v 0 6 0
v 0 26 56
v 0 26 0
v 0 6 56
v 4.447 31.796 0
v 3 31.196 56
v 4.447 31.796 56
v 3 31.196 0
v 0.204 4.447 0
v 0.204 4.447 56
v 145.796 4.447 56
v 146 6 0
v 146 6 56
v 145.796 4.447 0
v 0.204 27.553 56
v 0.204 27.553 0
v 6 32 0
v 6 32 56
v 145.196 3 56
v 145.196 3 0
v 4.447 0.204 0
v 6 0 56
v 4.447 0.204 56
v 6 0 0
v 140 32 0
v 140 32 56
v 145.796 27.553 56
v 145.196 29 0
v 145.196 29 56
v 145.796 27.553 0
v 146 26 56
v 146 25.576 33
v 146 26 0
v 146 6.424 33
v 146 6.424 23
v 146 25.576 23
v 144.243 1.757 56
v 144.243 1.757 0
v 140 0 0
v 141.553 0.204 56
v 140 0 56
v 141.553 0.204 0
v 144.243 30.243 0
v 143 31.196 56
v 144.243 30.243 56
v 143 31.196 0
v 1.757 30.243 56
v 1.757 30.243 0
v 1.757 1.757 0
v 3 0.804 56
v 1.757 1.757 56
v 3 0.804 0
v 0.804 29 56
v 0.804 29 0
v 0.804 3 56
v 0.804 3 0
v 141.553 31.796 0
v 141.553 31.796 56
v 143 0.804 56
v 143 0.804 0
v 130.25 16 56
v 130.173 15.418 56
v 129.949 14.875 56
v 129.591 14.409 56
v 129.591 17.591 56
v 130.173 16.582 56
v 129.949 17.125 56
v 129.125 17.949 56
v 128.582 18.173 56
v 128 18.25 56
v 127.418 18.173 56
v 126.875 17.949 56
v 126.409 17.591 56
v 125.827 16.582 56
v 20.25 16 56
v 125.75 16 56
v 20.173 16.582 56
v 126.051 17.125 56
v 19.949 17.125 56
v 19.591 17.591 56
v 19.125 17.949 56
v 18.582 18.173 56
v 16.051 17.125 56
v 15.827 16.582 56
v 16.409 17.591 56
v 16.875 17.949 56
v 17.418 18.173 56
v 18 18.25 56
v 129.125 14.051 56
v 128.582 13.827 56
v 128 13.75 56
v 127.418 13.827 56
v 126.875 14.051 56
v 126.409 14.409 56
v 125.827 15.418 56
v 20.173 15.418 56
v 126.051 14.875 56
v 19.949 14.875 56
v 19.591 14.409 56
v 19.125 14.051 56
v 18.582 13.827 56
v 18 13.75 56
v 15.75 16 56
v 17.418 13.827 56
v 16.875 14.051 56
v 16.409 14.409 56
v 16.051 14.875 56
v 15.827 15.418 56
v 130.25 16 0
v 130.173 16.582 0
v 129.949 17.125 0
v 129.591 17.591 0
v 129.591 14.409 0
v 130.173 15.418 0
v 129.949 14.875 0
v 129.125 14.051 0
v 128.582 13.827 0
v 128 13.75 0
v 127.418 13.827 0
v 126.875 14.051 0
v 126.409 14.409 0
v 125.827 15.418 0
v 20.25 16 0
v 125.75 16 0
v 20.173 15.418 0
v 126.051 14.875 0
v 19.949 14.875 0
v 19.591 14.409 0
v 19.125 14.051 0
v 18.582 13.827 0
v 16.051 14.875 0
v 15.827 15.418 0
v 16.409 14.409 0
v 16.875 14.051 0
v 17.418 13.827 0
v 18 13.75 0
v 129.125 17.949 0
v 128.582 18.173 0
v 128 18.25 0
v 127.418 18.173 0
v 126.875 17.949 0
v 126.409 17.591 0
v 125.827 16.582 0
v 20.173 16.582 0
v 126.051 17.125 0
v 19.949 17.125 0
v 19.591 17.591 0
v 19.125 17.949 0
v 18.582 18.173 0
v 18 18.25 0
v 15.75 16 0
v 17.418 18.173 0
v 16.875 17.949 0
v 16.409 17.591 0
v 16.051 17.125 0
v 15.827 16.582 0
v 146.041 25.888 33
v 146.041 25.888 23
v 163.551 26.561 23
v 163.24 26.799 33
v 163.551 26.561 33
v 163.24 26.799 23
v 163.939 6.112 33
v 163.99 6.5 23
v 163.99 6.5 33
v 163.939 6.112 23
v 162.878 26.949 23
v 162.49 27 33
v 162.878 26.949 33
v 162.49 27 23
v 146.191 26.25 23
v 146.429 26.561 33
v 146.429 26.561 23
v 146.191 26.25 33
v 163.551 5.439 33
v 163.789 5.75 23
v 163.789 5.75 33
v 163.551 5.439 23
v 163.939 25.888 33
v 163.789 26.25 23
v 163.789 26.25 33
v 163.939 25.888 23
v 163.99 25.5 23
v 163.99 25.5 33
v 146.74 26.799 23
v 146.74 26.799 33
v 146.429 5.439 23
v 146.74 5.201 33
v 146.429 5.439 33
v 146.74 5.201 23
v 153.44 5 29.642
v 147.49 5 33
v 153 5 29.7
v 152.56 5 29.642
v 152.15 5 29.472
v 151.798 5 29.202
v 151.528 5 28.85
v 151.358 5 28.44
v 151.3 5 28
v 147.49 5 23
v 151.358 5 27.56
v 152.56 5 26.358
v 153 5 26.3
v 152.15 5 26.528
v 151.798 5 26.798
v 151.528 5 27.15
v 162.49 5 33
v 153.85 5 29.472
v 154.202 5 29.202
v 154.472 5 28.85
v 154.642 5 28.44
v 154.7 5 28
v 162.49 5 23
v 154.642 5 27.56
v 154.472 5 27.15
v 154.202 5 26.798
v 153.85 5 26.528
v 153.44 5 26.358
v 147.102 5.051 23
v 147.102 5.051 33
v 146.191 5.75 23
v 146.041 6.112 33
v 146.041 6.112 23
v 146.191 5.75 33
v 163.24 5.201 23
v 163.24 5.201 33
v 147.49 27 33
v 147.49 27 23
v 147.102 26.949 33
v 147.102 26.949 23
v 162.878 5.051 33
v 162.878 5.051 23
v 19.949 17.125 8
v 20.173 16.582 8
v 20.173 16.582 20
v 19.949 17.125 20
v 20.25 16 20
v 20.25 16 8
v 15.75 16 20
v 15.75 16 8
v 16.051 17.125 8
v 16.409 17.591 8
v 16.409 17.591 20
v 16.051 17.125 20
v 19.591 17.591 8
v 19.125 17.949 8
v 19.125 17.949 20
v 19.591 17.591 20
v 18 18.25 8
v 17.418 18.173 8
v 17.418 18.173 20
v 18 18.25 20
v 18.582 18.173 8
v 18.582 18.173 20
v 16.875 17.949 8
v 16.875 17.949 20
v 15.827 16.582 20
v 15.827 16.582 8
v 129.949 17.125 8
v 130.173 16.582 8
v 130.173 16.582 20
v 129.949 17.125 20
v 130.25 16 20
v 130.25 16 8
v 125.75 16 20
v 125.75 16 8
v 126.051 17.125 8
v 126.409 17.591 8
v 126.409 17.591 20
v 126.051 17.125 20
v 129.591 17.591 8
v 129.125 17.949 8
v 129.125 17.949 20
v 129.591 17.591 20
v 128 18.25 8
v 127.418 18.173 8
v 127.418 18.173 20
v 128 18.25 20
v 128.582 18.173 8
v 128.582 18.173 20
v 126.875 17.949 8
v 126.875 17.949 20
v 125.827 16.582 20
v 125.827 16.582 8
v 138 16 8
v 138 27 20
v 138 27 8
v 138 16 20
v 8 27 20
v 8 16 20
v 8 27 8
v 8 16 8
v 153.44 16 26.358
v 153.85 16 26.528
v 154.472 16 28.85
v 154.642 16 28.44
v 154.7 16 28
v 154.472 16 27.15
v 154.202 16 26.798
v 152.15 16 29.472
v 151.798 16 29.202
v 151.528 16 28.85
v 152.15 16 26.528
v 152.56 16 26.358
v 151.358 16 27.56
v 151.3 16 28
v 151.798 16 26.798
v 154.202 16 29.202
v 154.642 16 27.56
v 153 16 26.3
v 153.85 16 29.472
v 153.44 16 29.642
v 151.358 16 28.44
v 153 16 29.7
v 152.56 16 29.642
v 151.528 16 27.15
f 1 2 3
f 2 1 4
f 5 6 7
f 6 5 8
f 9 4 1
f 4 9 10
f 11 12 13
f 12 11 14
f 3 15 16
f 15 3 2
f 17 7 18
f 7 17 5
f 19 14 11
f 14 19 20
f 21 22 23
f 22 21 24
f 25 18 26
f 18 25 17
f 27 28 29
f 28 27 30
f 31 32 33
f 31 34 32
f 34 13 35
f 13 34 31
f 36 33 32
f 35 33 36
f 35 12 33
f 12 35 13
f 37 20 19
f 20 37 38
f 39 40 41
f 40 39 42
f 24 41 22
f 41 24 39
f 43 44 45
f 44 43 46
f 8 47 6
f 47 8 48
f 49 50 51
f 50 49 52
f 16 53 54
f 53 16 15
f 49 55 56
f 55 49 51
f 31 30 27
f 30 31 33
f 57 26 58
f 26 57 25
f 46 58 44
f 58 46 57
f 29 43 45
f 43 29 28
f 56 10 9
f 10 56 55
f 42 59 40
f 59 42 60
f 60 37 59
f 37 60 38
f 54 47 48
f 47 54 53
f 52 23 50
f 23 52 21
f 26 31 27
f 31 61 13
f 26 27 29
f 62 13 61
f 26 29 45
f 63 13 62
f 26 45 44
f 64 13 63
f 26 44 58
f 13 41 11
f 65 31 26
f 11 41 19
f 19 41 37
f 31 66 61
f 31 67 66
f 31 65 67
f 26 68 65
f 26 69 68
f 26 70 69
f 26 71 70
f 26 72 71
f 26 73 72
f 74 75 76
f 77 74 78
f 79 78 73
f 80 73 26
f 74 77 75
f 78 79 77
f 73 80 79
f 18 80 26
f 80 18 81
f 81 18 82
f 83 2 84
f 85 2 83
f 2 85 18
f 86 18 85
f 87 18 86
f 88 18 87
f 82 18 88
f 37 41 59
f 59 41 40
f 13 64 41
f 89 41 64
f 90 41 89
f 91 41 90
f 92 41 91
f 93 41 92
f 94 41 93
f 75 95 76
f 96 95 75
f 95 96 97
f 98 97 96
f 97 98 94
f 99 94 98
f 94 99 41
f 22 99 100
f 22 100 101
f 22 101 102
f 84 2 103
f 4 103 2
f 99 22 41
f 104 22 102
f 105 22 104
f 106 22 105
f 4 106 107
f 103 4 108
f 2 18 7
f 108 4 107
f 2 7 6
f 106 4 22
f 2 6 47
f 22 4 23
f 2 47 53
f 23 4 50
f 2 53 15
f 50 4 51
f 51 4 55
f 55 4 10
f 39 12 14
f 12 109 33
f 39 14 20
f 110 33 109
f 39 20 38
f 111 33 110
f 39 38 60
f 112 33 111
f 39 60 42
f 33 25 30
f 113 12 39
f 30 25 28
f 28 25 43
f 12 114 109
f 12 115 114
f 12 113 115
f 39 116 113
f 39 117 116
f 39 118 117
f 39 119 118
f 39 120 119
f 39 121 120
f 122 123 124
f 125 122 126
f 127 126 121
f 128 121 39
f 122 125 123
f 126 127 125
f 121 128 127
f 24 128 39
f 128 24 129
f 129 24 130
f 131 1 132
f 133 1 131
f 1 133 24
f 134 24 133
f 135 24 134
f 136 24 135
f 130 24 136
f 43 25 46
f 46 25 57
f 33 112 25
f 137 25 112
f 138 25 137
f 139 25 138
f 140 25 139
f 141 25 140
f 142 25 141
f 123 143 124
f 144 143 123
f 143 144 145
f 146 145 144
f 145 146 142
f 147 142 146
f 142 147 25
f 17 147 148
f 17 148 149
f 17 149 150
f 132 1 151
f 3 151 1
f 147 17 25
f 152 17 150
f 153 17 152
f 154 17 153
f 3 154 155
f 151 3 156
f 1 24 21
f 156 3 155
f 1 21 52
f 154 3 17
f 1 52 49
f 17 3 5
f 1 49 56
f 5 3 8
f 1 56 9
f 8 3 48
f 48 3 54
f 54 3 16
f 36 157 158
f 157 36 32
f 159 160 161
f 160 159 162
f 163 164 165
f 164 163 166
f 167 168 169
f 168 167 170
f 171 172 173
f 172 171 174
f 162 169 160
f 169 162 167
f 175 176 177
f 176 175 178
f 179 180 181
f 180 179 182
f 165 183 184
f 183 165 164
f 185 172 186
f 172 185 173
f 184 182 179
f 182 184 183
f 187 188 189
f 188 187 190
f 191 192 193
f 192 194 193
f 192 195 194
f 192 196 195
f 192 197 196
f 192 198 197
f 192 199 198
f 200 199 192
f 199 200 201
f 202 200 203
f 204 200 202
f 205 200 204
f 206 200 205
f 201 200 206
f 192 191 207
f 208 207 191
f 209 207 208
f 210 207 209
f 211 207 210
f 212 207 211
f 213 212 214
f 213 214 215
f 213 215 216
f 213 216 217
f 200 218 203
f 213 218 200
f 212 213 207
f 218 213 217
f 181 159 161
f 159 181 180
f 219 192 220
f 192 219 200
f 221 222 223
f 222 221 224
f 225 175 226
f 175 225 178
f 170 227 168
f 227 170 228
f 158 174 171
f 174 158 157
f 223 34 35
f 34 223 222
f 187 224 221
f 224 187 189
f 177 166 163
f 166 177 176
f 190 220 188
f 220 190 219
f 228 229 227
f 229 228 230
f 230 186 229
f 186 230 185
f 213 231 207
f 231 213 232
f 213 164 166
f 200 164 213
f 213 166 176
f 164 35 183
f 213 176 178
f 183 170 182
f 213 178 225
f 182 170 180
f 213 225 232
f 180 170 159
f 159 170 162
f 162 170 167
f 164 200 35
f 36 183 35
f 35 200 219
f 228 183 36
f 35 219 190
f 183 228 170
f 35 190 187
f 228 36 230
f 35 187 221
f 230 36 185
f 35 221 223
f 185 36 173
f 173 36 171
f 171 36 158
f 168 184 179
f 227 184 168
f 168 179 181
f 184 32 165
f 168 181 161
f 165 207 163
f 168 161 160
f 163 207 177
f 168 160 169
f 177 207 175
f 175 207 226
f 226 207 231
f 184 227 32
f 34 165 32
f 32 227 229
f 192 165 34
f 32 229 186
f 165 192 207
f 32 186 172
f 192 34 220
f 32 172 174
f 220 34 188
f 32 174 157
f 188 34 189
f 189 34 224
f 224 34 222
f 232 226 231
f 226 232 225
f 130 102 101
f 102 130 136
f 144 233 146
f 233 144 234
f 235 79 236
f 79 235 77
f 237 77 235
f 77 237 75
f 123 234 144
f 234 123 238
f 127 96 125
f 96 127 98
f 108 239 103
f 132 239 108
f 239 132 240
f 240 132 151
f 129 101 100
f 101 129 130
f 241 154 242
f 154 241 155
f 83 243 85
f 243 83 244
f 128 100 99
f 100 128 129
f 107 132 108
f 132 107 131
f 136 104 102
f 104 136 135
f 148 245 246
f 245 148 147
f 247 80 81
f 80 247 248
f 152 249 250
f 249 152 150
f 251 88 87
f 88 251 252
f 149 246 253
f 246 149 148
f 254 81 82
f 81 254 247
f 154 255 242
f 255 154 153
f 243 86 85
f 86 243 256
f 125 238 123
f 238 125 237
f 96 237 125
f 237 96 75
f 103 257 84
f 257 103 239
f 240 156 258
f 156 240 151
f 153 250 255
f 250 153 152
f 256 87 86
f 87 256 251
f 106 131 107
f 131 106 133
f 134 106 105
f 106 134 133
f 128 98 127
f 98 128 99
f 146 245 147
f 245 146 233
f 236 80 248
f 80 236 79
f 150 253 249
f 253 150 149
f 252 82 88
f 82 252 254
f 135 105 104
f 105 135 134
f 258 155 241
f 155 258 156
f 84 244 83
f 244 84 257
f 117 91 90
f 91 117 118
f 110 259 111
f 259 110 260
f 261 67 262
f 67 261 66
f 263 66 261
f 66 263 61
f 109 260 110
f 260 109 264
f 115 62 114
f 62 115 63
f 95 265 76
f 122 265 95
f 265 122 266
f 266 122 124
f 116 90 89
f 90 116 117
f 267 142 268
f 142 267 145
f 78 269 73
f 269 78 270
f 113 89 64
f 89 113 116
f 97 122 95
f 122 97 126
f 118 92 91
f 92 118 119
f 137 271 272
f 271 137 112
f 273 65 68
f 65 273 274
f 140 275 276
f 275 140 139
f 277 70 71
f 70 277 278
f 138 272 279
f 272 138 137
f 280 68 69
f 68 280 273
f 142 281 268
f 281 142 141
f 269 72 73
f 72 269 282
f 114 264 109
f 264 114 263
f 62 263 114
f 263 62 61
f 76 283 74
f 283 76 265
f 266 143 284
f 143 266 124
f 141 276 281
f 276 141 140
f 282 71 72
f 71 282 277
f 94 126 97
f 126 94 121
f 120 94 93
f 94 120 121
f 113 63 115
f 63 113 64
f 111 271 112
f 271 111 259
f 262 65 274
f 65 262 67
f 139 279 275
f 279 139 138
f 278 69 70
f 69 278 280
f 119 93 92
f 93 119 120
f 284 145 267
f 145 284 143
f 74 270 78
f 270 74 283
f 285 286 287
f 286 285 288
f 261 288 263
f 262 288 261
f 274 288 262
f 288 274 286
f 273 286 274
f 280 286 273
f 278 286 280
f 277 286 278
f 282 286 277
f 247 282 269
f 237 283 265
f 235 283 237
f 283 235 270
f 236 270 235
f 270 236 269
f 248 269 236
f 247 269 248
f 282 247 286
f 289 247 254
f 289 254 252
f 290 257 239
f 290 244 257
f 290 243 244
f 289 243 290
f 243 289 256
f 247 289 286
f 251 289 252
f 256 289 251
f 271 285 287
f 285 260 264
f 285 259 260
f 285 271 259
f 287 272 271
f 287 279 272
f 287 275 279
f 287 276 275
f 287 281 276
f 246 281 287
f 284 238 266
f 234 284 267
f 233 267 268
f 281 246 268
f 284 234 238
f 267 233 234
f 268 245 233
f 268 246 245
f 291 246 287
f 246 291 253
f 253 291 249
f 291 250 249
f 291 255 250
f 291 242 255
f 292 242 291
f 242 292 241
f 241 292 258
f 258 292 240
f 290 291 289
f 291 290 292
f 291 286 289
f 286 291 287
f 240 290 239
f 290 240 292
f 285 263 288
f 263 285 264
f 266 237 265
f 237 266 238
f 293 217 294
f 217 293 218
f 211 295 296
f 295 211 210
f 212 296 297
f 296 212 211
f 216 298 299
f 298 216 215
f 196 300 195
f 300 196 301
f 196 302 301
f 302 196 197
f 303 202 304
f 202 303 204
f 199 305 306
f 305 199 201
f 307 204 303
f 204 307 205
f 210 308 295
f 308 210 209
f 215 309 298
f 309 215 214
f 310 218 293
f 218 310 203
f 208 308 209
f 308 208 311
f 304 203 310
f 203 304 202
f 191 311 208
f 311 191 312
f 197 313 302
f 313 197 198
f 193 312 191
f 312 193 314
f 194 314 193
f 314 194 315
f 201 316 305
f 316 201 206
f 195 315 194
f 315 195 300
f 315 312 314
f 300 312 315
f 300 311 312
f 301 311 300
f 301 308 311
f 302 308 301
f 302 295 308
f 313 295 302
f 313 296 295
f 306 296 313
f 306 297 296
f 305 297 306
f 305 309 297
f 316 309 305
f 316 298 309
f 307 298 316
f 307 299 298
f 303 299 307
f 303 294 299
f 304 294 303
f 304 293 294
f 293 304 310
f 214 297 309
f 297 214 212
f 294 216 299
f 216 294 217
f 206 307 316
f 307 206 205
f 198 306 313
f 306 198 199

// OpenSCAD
// file: 00_parameters.scad
// TenderCells DoorCell V1 shared parameters
// Units: millimeters

overall_w = 438;
overall_h = 368;
frame_depth = 56;

clear_w = 242;
clear_h = 312;

rail_thick = 32;
jamb_w = 48;
motor_jamb_w = 78;

// Printability targets
target_bed_xy = 220;
comfortable_part_max = 180;

// Modular frame split dimensions
top_seg_len = overall_w / 3;
bottom_seg_len = overall_w / 3;
left_jamb_seg_h = overall_h / 2;
right_lower_h = 118;
right_motor_h = 156;
right_upper_h = overall_h - right_lower_h - right_motor_h;

// Low-cost electronics envelope used by DoorCell V1.4.
// These dimensions are based on common generic modules, not a custom PCB.
esp32_board = [58, 31, 8];
drv8871_board = [31, 26, 7];
current_sensor_board = [26, 22, 7];
lm2596_board = [44, 22, 14];
inline_fuse_body = [45, 15, 14];
cn3065_board = [44, 24, 8];
electronics_clearance = 1.5;
controller_wall = 3;
controller_box_w = 170;
controller_box_h = 115;
controller_box_d = 46;
controller_lid_insert_offset = 11;
controller_m12_gland_d = 12.8;
controller_m10_gland_d = 10.6;
controller_m8_gland_d = 8.4;
controller_button_d = 16.2;

// Brass heat-set/push-in insert features.
insert_post_d = 8.0;
insert_post_h = 8.0;
insert_pilot_d = 4.6;
insert_pilot_depth = 6.5;
hold_down_screw_clearance = 3.4;

// Motor envelope for common 25GA/JGA25-370 gearmotors with optional encoder.
motor_body_d = 25.0;
motor_body_clearance_d = 27.2;
motor_body_len = 65;
motor_encoder_clearance = 16;
motor_mount_plate = [72, 92, 12];
motor_mount_cradle = [54, 74, 28];

// Optional solar add-on.
solar_panel_w = 145;
solar_panel_h = 145;
solar_panel_t = 4.0;
solar_panel_frame_border = 10;
solar_panel_frame_w = solar_panel_w + 2*solar_panel_frame_border;
solar_panel_frame_h = solar_panel_h + 2*solar_panel_frame_border;
solar_panel_back_depth = 14;
solar_panel_lip_overlap = 3;
solar_ball_d = 22;
solar_ball_socket_clearance = 0.45;
solar_mount_m5 = 5.4;

// Tongue-and-groove frame joints
// Fit target: common FDM printers with PETG/ASA.
// Clearance is per side, so sockets add 2x this value.
tongue_len = 18;
tongue_w = 22;
tongue_z = 10;
tongue_clearance_side = 0.25;
tongue_socket_depth_extra = 0.60;

door_w = 270;
door_h = 326;
door_t = 8;

track_gap = 11;
track_depth = 12;

// Rack-and-pinion drive
// Metric module gear math:
// circular_pitch = PI * module
// pitch_diameter = module * tooth_count
// outside_diameter = module * (tooth_count + 2)
// root_diameter = module * (tooth_count - 2.5)
gear_module = 2.0;
pressure_angle = 20;
gear_backlash = 0.20; // mm removed from rack tooth thickness at pitch line

pinion_teeth = 16;
pinion_pitch_d = gear_module * pinion_teeth;
pinion_pitch_radius = pinion_pitch_d / 2;
pinion_outer_d = gear_module * (pinion_teeth + 2);
pinion_outer_radius = pinion_outer_d / 2;
pinion_root_d = gear_module * (pinion_teeth - 2.5);
pinion_root_radius = pinion_root_d / 2;
pinion_thick = 12;
shaft_d = 6.2;

rack_tooth_count = 15;
rack_circular_pitch = 3.141592653589793 * gear_module;
rack_len = rack_circular_pitch * rack_tooth_count;
rack_w = 18;
rack_t = 6;
rack_addendum = gear_module;
rack_dedendum = 1.25 * gear_module;
rack_tooth_h = rack_addendum + rack_dedendum;
rack_pitch_line_z = rack_dedendum;
rack_tooth_pitch_thickness = rack_circular_pitch / 2 - gear_backlash;
rack_tooth_top_w = rack_tooth_pitch_thickness - 2 * rack_addendum * tan(pressure_angle);
rack_tooth_root_w = rack_tooth_pitch_thickness + 2 * rack_dedendum * tan(pressure_angle);

screw_m3 = 3.4;
screw_m4 = 4.5;
insert_m3 = 4.6;

eps = 0.01;

module rounded_box(size=[10,10,10], r=2) {
  hull() {
    translate([r,r,0]) cylinder(h=size[2], r=r, $fn=24);
    translate([size[0]-r,r,0]) cylinder(h=size[2], r=r, $fn=24);
    translate([r,size[1]-r,0]) cylinder(h=size[2], r=r, $fn=24);
    translate([size[0]-r,size[1]-r,0]) cylinder(h=size[2], r=r, $fn=24);
  }
}

module m3_clearance_hole(h=20) {
  cylinder(h=h, d=screw_m3, $fn=24);
}

module m4_clearance_hole(h=20) {
  cylinder(h=h, d=screw_m4, $fn=24);
}

module heat_insert_hole(h=6) {
  cylinder(h=h, d=insert_m3, $fn=24);
}

module heat_insert_post(h=insert_post_h, d=insert_post_d) {
  difference() {
    cylinder(h=h, d=d, $fn=32);
    translate([0,0,h-insert_pilot_depth+eps])
      cylinder(h=insert_pilot_depth+eps, d=insert_pilot_d, $fn=24);
  }
}

module m3_hold_down_slot(length=10, h=4) {
  hull() {
    translate([-length/2,0,0]) cylinder(h=h, d=hold_down_screw_clearance, $fn=20);
    translate([ length/2,0,0]) cylinder(h=h, d=hold_down_screw_clearance, $fn=20);
  }
}

module rail_channel(length=100) {
  cube([length, track_gap, track_depth]);
}

module frame_tongue_x() {
  rounded_box([tongue_len, tongue_w, tongue_z], r=1.5);
}

module frame_socket_x() {
  cube([
    tongue_len + tongue_socket_depth_extra,
    tongue_w + 2*tongue_clearance_side,
    tongue_z + 2*tongue_clearance_side
  ]);
}

module frame_tongue_y() {
  rounded_box([tongue_w, tongue_len, tongue_z], r=1.5);
}

module frame_socket_y() {
  cube([
    tongue_w + 2*tongue_clearance_side,
    tongue_len + tongue_socket_depth_extra,
    tongue_z + 2*tongue_clearance_side
  ]);
}

module rack_teeth(len=rack_len) {
  teeth = floor(len / rack_circular_pitch);
  for (i=[0:teeth-1]) {
    center = i*rack_circular_pitch + rack_circular_pitch/2;
    translate([0, 0, rack_t-0.20])
      linear_extrude(height=rack_w)
        polygon(points=[
          [center - rack_tooth_root_w/2, 0],
          [center + rack_tooth_root_w/2, 0],
          [center + rack_tooth_top_w/2, rack_tooth_h],
          [center - rack_tooth_top_w/2, rack_tooth_h]
        ]);
  }
}

function polar_point(r, a) = [r * cos(a), r * sin(a)];
// file: frame_modular_common.scad
include <00_parameters.scad>

module horizontal_frame_segment(seg_len=top_seg_len, rail_kind="top", joint_left="socket", joint_right="tongue") {
  difference() {
    union() {
      rounded_box([seg_len, rail_thick, frame_depth], r=6);

      if (joint_right == "tongue") {
        translate([seg_len - eps, rail_thick/2 - tongue_w/2, frame_depth/2 - tongue_z/2])
          frame_tongue_x();
      }
    }

    // Tongue receiver from previous segment.
    if (joint_left == "socket") {
      translate([
        -eps,
        rail_thick/2 - (tongue_w + 2*tongue_clearance_side)/2,
        frame_depth/2 - (tongue_z + 2*tongue_clearance_side)/2
      ])
        frame_socket_x();
    }

    // Sliding door guide channel.
    if (rail_kind == "top") {
      translate([8, rail_thick-track_gap-5, 8])
        rail_channel(length=seg_len-16);
    } else {
      translate([8, 5, frame_depth-track_depth-8])
        rail_channel(length=seg_len-16);

      // Drain slots for bottom rail.
      for (x=[seg_len*0.25, seg_len*0.5, seg_len*0.75]) {
        translate([x-10, rail_thick/2-2, frame_depth-4])
          cube([20, 4, 10]);
      }
    }

    // Coop mounting holes.
    for (x=[18, seg_len-18]) {
      translate([x, rail_thick/2, -eps])
        m4_clearance_hole(h=frame_depth+2);
    }

    // Cross-bolt holes near frame split joints.
    if (joint_left == "socket") {
      translate([tongue_len/2, rail_thick/2, frame_depth/2])
        rotate([90,0,0]) m3_clearance_hole(h=rail_thick+2);
    }
    if (joint_right == "tongue") {
      translate([seg_len + tongue_len/2 - 2, rail_thick/2, frame_depth/2])
        rotate([90,0,0]) m3_clearance_hole(h=rail_thick+2);
    }
  }
}

module left_jamb_segment(seg_h=left_jamb_seg_h, joint_bottom="socket", joint_top="tongue", corner_bottom=false, corner_top=false) {
  difference() {
    union() {
      rounded_box([jamb_w, seg_h, frame_depth], r=6);

      if (joint_top == "tongue") {
        translate([jamb_w/2 - tongue_w/2, seg_h - eps, frame_depth/2 - tongue_z/2])
          frame_tongue_y();
      }
    }

    if (joint_bottom == "socket") {
      translate([
        jamb_w/2 - (tongue_w + 2*tongue_clearance_side)/2,
        -eps,
        frame_depth/2 - (tongue_z + 2*tongue_clearance_side)/2
      ])
        frame_socket_y();
    }

    // Door pocket relief.
    translate([jamb_w-18, 0, 8])
      cube([16, seg_h, frame_depth-16]);

    // Coop mounting holes.
    for (y=[seg_h*0.28, seg_h*0.72]) {
      translate([jamb_w/2, y, -eps]) m4_clearance_hole(h=frame_depth+2);
    }

    // Rail-to-jamb corner holes.
    if (corner_bottom) {
      translate([jamb_w-10, 16, frame_depth/2])
        rotate([0,90,0]) m3_clearance_hole(h=20);
    }
    if (corner_top) {
      translate([jamb_w-10, seg_h-16, frame_depth/2])
        rotate([0,90,0]) m3_clearance_hole(h=20);
    }

    // Cross-bolt through tongue-and-groove.
    if (joint_bottom == "socket") {
      translate([jamb_w/2, tongue_len/2, frame_depth/2])
        rotate([0,90,0]) m3_clearance_hole(h=jamb_w+2);
    }
    if (joint_top == "tongue") {
      translate([jamb_w/2, seg_h + tongue_len/2 - 2, frame_depth/2])
        rotate([0,90,0]) m3_clearance_hole(h=jamb_w+2);
    }
  }
}

module right_jamb_segment(seg_h=120, has_motor_bay=false, joint_bottom="socket", joint_top="tongue", corner_bottom=false, corner_top=false) {
  difference() {
    union() {
      rounded_box([motor_jamb_w, seg_h, frame_depth], r=6);

      if (has_motor_bay) {
        translate([motor_jamb_w-8, 20, 0])
          rounded_box([70, seg_h-32, frame_depth], r=5);
      }

      if (joint_top == "tongue") {
        translate([motor_jamb_w/2 - tongue_w/2, seg_h - eps, frame_depth/2 - tongue_z/2])
          frame_tongue_y();
      }
    }

    if (joint_bottom == "socket") {
      translate([
        motor_jamb_w/2 - (tongue_w + 2*tongue_clearance_side)/2,
        -eps,
        frame_depth/2 - (tongue_z + 2*tongue_clearance_side)/2
      ])
        frame_socket_y();
    }

    // Door pocket relief.
    translate([0, 0, 8])
      cube([20, seg_h, frame_depth-16]);

    if (has_motor_bay) {
      // Motor cassette pocket sized for the revised 25GA mount.
      translate([motor_jamb_w+5, 33, 8])
        cube([62, 92, 40]);

      // Pinion/rack engagement window.
      translate([4, 68, 16])
        cube([46, 36, 24]);

      // Motor/control harness pass-through for M12-style cable gland routing.
      translate([motor_jamb_w+26, seg_h-42, 16])
        cube([24, 34, 26]);

      // Limit switch lead pass-throughs.
      translate([motor_jamb_w-2, 18, 18])
        cube([16, 18, 16]);
      translate([motor_jamb_w-2, seg_h-36, 18])
        cube([16, 18, 16]);
    }

    // Coop mounting holes.
    for (y=[seg_h*0.28, seg_h*0.72]) {
      translate([motor_jamb_w/2, y, -eps]) m4_clearance_hole(h=frame_depth+2);
    }

    // Rail-to-jamb corner holes.
    if (corner_bottom) {
      translate([10, 16, frame_depth/2])
        rotate([0,90,0]) m3_clearance_hole(h=20);
    }
    if (corner_top) {
      translate([10, seg_h-16, frame_depth/2])
        rotate([0,90,0]) m3_clearance_hole(h=20);
    }

    // Cross-bolt through tongue-and-groove.
    if (joint_bottom == "socket") {
      translate([motor_jamb_w/2, tongue_len/2, frame_depth/2])
        rotate([0,90,0]) m3_clearance_hole(h=motor_jamb_w+2);
    }
    if (joint_top == "tongue") {
      translate([motor_jamb_w/2, seg_h + tongue_len/2 - 2, frame_depth/2])
        rotate([0,90,0]) m3_clearance_hole(h=motor_jamb_w+2);
    }
  }
}
// main file
include <frame_modular_common.scad>

horizontal_frame_segment(seg_len=top_seg_len, rail_kind="top", joint_left="none", joint_right="tongue");
